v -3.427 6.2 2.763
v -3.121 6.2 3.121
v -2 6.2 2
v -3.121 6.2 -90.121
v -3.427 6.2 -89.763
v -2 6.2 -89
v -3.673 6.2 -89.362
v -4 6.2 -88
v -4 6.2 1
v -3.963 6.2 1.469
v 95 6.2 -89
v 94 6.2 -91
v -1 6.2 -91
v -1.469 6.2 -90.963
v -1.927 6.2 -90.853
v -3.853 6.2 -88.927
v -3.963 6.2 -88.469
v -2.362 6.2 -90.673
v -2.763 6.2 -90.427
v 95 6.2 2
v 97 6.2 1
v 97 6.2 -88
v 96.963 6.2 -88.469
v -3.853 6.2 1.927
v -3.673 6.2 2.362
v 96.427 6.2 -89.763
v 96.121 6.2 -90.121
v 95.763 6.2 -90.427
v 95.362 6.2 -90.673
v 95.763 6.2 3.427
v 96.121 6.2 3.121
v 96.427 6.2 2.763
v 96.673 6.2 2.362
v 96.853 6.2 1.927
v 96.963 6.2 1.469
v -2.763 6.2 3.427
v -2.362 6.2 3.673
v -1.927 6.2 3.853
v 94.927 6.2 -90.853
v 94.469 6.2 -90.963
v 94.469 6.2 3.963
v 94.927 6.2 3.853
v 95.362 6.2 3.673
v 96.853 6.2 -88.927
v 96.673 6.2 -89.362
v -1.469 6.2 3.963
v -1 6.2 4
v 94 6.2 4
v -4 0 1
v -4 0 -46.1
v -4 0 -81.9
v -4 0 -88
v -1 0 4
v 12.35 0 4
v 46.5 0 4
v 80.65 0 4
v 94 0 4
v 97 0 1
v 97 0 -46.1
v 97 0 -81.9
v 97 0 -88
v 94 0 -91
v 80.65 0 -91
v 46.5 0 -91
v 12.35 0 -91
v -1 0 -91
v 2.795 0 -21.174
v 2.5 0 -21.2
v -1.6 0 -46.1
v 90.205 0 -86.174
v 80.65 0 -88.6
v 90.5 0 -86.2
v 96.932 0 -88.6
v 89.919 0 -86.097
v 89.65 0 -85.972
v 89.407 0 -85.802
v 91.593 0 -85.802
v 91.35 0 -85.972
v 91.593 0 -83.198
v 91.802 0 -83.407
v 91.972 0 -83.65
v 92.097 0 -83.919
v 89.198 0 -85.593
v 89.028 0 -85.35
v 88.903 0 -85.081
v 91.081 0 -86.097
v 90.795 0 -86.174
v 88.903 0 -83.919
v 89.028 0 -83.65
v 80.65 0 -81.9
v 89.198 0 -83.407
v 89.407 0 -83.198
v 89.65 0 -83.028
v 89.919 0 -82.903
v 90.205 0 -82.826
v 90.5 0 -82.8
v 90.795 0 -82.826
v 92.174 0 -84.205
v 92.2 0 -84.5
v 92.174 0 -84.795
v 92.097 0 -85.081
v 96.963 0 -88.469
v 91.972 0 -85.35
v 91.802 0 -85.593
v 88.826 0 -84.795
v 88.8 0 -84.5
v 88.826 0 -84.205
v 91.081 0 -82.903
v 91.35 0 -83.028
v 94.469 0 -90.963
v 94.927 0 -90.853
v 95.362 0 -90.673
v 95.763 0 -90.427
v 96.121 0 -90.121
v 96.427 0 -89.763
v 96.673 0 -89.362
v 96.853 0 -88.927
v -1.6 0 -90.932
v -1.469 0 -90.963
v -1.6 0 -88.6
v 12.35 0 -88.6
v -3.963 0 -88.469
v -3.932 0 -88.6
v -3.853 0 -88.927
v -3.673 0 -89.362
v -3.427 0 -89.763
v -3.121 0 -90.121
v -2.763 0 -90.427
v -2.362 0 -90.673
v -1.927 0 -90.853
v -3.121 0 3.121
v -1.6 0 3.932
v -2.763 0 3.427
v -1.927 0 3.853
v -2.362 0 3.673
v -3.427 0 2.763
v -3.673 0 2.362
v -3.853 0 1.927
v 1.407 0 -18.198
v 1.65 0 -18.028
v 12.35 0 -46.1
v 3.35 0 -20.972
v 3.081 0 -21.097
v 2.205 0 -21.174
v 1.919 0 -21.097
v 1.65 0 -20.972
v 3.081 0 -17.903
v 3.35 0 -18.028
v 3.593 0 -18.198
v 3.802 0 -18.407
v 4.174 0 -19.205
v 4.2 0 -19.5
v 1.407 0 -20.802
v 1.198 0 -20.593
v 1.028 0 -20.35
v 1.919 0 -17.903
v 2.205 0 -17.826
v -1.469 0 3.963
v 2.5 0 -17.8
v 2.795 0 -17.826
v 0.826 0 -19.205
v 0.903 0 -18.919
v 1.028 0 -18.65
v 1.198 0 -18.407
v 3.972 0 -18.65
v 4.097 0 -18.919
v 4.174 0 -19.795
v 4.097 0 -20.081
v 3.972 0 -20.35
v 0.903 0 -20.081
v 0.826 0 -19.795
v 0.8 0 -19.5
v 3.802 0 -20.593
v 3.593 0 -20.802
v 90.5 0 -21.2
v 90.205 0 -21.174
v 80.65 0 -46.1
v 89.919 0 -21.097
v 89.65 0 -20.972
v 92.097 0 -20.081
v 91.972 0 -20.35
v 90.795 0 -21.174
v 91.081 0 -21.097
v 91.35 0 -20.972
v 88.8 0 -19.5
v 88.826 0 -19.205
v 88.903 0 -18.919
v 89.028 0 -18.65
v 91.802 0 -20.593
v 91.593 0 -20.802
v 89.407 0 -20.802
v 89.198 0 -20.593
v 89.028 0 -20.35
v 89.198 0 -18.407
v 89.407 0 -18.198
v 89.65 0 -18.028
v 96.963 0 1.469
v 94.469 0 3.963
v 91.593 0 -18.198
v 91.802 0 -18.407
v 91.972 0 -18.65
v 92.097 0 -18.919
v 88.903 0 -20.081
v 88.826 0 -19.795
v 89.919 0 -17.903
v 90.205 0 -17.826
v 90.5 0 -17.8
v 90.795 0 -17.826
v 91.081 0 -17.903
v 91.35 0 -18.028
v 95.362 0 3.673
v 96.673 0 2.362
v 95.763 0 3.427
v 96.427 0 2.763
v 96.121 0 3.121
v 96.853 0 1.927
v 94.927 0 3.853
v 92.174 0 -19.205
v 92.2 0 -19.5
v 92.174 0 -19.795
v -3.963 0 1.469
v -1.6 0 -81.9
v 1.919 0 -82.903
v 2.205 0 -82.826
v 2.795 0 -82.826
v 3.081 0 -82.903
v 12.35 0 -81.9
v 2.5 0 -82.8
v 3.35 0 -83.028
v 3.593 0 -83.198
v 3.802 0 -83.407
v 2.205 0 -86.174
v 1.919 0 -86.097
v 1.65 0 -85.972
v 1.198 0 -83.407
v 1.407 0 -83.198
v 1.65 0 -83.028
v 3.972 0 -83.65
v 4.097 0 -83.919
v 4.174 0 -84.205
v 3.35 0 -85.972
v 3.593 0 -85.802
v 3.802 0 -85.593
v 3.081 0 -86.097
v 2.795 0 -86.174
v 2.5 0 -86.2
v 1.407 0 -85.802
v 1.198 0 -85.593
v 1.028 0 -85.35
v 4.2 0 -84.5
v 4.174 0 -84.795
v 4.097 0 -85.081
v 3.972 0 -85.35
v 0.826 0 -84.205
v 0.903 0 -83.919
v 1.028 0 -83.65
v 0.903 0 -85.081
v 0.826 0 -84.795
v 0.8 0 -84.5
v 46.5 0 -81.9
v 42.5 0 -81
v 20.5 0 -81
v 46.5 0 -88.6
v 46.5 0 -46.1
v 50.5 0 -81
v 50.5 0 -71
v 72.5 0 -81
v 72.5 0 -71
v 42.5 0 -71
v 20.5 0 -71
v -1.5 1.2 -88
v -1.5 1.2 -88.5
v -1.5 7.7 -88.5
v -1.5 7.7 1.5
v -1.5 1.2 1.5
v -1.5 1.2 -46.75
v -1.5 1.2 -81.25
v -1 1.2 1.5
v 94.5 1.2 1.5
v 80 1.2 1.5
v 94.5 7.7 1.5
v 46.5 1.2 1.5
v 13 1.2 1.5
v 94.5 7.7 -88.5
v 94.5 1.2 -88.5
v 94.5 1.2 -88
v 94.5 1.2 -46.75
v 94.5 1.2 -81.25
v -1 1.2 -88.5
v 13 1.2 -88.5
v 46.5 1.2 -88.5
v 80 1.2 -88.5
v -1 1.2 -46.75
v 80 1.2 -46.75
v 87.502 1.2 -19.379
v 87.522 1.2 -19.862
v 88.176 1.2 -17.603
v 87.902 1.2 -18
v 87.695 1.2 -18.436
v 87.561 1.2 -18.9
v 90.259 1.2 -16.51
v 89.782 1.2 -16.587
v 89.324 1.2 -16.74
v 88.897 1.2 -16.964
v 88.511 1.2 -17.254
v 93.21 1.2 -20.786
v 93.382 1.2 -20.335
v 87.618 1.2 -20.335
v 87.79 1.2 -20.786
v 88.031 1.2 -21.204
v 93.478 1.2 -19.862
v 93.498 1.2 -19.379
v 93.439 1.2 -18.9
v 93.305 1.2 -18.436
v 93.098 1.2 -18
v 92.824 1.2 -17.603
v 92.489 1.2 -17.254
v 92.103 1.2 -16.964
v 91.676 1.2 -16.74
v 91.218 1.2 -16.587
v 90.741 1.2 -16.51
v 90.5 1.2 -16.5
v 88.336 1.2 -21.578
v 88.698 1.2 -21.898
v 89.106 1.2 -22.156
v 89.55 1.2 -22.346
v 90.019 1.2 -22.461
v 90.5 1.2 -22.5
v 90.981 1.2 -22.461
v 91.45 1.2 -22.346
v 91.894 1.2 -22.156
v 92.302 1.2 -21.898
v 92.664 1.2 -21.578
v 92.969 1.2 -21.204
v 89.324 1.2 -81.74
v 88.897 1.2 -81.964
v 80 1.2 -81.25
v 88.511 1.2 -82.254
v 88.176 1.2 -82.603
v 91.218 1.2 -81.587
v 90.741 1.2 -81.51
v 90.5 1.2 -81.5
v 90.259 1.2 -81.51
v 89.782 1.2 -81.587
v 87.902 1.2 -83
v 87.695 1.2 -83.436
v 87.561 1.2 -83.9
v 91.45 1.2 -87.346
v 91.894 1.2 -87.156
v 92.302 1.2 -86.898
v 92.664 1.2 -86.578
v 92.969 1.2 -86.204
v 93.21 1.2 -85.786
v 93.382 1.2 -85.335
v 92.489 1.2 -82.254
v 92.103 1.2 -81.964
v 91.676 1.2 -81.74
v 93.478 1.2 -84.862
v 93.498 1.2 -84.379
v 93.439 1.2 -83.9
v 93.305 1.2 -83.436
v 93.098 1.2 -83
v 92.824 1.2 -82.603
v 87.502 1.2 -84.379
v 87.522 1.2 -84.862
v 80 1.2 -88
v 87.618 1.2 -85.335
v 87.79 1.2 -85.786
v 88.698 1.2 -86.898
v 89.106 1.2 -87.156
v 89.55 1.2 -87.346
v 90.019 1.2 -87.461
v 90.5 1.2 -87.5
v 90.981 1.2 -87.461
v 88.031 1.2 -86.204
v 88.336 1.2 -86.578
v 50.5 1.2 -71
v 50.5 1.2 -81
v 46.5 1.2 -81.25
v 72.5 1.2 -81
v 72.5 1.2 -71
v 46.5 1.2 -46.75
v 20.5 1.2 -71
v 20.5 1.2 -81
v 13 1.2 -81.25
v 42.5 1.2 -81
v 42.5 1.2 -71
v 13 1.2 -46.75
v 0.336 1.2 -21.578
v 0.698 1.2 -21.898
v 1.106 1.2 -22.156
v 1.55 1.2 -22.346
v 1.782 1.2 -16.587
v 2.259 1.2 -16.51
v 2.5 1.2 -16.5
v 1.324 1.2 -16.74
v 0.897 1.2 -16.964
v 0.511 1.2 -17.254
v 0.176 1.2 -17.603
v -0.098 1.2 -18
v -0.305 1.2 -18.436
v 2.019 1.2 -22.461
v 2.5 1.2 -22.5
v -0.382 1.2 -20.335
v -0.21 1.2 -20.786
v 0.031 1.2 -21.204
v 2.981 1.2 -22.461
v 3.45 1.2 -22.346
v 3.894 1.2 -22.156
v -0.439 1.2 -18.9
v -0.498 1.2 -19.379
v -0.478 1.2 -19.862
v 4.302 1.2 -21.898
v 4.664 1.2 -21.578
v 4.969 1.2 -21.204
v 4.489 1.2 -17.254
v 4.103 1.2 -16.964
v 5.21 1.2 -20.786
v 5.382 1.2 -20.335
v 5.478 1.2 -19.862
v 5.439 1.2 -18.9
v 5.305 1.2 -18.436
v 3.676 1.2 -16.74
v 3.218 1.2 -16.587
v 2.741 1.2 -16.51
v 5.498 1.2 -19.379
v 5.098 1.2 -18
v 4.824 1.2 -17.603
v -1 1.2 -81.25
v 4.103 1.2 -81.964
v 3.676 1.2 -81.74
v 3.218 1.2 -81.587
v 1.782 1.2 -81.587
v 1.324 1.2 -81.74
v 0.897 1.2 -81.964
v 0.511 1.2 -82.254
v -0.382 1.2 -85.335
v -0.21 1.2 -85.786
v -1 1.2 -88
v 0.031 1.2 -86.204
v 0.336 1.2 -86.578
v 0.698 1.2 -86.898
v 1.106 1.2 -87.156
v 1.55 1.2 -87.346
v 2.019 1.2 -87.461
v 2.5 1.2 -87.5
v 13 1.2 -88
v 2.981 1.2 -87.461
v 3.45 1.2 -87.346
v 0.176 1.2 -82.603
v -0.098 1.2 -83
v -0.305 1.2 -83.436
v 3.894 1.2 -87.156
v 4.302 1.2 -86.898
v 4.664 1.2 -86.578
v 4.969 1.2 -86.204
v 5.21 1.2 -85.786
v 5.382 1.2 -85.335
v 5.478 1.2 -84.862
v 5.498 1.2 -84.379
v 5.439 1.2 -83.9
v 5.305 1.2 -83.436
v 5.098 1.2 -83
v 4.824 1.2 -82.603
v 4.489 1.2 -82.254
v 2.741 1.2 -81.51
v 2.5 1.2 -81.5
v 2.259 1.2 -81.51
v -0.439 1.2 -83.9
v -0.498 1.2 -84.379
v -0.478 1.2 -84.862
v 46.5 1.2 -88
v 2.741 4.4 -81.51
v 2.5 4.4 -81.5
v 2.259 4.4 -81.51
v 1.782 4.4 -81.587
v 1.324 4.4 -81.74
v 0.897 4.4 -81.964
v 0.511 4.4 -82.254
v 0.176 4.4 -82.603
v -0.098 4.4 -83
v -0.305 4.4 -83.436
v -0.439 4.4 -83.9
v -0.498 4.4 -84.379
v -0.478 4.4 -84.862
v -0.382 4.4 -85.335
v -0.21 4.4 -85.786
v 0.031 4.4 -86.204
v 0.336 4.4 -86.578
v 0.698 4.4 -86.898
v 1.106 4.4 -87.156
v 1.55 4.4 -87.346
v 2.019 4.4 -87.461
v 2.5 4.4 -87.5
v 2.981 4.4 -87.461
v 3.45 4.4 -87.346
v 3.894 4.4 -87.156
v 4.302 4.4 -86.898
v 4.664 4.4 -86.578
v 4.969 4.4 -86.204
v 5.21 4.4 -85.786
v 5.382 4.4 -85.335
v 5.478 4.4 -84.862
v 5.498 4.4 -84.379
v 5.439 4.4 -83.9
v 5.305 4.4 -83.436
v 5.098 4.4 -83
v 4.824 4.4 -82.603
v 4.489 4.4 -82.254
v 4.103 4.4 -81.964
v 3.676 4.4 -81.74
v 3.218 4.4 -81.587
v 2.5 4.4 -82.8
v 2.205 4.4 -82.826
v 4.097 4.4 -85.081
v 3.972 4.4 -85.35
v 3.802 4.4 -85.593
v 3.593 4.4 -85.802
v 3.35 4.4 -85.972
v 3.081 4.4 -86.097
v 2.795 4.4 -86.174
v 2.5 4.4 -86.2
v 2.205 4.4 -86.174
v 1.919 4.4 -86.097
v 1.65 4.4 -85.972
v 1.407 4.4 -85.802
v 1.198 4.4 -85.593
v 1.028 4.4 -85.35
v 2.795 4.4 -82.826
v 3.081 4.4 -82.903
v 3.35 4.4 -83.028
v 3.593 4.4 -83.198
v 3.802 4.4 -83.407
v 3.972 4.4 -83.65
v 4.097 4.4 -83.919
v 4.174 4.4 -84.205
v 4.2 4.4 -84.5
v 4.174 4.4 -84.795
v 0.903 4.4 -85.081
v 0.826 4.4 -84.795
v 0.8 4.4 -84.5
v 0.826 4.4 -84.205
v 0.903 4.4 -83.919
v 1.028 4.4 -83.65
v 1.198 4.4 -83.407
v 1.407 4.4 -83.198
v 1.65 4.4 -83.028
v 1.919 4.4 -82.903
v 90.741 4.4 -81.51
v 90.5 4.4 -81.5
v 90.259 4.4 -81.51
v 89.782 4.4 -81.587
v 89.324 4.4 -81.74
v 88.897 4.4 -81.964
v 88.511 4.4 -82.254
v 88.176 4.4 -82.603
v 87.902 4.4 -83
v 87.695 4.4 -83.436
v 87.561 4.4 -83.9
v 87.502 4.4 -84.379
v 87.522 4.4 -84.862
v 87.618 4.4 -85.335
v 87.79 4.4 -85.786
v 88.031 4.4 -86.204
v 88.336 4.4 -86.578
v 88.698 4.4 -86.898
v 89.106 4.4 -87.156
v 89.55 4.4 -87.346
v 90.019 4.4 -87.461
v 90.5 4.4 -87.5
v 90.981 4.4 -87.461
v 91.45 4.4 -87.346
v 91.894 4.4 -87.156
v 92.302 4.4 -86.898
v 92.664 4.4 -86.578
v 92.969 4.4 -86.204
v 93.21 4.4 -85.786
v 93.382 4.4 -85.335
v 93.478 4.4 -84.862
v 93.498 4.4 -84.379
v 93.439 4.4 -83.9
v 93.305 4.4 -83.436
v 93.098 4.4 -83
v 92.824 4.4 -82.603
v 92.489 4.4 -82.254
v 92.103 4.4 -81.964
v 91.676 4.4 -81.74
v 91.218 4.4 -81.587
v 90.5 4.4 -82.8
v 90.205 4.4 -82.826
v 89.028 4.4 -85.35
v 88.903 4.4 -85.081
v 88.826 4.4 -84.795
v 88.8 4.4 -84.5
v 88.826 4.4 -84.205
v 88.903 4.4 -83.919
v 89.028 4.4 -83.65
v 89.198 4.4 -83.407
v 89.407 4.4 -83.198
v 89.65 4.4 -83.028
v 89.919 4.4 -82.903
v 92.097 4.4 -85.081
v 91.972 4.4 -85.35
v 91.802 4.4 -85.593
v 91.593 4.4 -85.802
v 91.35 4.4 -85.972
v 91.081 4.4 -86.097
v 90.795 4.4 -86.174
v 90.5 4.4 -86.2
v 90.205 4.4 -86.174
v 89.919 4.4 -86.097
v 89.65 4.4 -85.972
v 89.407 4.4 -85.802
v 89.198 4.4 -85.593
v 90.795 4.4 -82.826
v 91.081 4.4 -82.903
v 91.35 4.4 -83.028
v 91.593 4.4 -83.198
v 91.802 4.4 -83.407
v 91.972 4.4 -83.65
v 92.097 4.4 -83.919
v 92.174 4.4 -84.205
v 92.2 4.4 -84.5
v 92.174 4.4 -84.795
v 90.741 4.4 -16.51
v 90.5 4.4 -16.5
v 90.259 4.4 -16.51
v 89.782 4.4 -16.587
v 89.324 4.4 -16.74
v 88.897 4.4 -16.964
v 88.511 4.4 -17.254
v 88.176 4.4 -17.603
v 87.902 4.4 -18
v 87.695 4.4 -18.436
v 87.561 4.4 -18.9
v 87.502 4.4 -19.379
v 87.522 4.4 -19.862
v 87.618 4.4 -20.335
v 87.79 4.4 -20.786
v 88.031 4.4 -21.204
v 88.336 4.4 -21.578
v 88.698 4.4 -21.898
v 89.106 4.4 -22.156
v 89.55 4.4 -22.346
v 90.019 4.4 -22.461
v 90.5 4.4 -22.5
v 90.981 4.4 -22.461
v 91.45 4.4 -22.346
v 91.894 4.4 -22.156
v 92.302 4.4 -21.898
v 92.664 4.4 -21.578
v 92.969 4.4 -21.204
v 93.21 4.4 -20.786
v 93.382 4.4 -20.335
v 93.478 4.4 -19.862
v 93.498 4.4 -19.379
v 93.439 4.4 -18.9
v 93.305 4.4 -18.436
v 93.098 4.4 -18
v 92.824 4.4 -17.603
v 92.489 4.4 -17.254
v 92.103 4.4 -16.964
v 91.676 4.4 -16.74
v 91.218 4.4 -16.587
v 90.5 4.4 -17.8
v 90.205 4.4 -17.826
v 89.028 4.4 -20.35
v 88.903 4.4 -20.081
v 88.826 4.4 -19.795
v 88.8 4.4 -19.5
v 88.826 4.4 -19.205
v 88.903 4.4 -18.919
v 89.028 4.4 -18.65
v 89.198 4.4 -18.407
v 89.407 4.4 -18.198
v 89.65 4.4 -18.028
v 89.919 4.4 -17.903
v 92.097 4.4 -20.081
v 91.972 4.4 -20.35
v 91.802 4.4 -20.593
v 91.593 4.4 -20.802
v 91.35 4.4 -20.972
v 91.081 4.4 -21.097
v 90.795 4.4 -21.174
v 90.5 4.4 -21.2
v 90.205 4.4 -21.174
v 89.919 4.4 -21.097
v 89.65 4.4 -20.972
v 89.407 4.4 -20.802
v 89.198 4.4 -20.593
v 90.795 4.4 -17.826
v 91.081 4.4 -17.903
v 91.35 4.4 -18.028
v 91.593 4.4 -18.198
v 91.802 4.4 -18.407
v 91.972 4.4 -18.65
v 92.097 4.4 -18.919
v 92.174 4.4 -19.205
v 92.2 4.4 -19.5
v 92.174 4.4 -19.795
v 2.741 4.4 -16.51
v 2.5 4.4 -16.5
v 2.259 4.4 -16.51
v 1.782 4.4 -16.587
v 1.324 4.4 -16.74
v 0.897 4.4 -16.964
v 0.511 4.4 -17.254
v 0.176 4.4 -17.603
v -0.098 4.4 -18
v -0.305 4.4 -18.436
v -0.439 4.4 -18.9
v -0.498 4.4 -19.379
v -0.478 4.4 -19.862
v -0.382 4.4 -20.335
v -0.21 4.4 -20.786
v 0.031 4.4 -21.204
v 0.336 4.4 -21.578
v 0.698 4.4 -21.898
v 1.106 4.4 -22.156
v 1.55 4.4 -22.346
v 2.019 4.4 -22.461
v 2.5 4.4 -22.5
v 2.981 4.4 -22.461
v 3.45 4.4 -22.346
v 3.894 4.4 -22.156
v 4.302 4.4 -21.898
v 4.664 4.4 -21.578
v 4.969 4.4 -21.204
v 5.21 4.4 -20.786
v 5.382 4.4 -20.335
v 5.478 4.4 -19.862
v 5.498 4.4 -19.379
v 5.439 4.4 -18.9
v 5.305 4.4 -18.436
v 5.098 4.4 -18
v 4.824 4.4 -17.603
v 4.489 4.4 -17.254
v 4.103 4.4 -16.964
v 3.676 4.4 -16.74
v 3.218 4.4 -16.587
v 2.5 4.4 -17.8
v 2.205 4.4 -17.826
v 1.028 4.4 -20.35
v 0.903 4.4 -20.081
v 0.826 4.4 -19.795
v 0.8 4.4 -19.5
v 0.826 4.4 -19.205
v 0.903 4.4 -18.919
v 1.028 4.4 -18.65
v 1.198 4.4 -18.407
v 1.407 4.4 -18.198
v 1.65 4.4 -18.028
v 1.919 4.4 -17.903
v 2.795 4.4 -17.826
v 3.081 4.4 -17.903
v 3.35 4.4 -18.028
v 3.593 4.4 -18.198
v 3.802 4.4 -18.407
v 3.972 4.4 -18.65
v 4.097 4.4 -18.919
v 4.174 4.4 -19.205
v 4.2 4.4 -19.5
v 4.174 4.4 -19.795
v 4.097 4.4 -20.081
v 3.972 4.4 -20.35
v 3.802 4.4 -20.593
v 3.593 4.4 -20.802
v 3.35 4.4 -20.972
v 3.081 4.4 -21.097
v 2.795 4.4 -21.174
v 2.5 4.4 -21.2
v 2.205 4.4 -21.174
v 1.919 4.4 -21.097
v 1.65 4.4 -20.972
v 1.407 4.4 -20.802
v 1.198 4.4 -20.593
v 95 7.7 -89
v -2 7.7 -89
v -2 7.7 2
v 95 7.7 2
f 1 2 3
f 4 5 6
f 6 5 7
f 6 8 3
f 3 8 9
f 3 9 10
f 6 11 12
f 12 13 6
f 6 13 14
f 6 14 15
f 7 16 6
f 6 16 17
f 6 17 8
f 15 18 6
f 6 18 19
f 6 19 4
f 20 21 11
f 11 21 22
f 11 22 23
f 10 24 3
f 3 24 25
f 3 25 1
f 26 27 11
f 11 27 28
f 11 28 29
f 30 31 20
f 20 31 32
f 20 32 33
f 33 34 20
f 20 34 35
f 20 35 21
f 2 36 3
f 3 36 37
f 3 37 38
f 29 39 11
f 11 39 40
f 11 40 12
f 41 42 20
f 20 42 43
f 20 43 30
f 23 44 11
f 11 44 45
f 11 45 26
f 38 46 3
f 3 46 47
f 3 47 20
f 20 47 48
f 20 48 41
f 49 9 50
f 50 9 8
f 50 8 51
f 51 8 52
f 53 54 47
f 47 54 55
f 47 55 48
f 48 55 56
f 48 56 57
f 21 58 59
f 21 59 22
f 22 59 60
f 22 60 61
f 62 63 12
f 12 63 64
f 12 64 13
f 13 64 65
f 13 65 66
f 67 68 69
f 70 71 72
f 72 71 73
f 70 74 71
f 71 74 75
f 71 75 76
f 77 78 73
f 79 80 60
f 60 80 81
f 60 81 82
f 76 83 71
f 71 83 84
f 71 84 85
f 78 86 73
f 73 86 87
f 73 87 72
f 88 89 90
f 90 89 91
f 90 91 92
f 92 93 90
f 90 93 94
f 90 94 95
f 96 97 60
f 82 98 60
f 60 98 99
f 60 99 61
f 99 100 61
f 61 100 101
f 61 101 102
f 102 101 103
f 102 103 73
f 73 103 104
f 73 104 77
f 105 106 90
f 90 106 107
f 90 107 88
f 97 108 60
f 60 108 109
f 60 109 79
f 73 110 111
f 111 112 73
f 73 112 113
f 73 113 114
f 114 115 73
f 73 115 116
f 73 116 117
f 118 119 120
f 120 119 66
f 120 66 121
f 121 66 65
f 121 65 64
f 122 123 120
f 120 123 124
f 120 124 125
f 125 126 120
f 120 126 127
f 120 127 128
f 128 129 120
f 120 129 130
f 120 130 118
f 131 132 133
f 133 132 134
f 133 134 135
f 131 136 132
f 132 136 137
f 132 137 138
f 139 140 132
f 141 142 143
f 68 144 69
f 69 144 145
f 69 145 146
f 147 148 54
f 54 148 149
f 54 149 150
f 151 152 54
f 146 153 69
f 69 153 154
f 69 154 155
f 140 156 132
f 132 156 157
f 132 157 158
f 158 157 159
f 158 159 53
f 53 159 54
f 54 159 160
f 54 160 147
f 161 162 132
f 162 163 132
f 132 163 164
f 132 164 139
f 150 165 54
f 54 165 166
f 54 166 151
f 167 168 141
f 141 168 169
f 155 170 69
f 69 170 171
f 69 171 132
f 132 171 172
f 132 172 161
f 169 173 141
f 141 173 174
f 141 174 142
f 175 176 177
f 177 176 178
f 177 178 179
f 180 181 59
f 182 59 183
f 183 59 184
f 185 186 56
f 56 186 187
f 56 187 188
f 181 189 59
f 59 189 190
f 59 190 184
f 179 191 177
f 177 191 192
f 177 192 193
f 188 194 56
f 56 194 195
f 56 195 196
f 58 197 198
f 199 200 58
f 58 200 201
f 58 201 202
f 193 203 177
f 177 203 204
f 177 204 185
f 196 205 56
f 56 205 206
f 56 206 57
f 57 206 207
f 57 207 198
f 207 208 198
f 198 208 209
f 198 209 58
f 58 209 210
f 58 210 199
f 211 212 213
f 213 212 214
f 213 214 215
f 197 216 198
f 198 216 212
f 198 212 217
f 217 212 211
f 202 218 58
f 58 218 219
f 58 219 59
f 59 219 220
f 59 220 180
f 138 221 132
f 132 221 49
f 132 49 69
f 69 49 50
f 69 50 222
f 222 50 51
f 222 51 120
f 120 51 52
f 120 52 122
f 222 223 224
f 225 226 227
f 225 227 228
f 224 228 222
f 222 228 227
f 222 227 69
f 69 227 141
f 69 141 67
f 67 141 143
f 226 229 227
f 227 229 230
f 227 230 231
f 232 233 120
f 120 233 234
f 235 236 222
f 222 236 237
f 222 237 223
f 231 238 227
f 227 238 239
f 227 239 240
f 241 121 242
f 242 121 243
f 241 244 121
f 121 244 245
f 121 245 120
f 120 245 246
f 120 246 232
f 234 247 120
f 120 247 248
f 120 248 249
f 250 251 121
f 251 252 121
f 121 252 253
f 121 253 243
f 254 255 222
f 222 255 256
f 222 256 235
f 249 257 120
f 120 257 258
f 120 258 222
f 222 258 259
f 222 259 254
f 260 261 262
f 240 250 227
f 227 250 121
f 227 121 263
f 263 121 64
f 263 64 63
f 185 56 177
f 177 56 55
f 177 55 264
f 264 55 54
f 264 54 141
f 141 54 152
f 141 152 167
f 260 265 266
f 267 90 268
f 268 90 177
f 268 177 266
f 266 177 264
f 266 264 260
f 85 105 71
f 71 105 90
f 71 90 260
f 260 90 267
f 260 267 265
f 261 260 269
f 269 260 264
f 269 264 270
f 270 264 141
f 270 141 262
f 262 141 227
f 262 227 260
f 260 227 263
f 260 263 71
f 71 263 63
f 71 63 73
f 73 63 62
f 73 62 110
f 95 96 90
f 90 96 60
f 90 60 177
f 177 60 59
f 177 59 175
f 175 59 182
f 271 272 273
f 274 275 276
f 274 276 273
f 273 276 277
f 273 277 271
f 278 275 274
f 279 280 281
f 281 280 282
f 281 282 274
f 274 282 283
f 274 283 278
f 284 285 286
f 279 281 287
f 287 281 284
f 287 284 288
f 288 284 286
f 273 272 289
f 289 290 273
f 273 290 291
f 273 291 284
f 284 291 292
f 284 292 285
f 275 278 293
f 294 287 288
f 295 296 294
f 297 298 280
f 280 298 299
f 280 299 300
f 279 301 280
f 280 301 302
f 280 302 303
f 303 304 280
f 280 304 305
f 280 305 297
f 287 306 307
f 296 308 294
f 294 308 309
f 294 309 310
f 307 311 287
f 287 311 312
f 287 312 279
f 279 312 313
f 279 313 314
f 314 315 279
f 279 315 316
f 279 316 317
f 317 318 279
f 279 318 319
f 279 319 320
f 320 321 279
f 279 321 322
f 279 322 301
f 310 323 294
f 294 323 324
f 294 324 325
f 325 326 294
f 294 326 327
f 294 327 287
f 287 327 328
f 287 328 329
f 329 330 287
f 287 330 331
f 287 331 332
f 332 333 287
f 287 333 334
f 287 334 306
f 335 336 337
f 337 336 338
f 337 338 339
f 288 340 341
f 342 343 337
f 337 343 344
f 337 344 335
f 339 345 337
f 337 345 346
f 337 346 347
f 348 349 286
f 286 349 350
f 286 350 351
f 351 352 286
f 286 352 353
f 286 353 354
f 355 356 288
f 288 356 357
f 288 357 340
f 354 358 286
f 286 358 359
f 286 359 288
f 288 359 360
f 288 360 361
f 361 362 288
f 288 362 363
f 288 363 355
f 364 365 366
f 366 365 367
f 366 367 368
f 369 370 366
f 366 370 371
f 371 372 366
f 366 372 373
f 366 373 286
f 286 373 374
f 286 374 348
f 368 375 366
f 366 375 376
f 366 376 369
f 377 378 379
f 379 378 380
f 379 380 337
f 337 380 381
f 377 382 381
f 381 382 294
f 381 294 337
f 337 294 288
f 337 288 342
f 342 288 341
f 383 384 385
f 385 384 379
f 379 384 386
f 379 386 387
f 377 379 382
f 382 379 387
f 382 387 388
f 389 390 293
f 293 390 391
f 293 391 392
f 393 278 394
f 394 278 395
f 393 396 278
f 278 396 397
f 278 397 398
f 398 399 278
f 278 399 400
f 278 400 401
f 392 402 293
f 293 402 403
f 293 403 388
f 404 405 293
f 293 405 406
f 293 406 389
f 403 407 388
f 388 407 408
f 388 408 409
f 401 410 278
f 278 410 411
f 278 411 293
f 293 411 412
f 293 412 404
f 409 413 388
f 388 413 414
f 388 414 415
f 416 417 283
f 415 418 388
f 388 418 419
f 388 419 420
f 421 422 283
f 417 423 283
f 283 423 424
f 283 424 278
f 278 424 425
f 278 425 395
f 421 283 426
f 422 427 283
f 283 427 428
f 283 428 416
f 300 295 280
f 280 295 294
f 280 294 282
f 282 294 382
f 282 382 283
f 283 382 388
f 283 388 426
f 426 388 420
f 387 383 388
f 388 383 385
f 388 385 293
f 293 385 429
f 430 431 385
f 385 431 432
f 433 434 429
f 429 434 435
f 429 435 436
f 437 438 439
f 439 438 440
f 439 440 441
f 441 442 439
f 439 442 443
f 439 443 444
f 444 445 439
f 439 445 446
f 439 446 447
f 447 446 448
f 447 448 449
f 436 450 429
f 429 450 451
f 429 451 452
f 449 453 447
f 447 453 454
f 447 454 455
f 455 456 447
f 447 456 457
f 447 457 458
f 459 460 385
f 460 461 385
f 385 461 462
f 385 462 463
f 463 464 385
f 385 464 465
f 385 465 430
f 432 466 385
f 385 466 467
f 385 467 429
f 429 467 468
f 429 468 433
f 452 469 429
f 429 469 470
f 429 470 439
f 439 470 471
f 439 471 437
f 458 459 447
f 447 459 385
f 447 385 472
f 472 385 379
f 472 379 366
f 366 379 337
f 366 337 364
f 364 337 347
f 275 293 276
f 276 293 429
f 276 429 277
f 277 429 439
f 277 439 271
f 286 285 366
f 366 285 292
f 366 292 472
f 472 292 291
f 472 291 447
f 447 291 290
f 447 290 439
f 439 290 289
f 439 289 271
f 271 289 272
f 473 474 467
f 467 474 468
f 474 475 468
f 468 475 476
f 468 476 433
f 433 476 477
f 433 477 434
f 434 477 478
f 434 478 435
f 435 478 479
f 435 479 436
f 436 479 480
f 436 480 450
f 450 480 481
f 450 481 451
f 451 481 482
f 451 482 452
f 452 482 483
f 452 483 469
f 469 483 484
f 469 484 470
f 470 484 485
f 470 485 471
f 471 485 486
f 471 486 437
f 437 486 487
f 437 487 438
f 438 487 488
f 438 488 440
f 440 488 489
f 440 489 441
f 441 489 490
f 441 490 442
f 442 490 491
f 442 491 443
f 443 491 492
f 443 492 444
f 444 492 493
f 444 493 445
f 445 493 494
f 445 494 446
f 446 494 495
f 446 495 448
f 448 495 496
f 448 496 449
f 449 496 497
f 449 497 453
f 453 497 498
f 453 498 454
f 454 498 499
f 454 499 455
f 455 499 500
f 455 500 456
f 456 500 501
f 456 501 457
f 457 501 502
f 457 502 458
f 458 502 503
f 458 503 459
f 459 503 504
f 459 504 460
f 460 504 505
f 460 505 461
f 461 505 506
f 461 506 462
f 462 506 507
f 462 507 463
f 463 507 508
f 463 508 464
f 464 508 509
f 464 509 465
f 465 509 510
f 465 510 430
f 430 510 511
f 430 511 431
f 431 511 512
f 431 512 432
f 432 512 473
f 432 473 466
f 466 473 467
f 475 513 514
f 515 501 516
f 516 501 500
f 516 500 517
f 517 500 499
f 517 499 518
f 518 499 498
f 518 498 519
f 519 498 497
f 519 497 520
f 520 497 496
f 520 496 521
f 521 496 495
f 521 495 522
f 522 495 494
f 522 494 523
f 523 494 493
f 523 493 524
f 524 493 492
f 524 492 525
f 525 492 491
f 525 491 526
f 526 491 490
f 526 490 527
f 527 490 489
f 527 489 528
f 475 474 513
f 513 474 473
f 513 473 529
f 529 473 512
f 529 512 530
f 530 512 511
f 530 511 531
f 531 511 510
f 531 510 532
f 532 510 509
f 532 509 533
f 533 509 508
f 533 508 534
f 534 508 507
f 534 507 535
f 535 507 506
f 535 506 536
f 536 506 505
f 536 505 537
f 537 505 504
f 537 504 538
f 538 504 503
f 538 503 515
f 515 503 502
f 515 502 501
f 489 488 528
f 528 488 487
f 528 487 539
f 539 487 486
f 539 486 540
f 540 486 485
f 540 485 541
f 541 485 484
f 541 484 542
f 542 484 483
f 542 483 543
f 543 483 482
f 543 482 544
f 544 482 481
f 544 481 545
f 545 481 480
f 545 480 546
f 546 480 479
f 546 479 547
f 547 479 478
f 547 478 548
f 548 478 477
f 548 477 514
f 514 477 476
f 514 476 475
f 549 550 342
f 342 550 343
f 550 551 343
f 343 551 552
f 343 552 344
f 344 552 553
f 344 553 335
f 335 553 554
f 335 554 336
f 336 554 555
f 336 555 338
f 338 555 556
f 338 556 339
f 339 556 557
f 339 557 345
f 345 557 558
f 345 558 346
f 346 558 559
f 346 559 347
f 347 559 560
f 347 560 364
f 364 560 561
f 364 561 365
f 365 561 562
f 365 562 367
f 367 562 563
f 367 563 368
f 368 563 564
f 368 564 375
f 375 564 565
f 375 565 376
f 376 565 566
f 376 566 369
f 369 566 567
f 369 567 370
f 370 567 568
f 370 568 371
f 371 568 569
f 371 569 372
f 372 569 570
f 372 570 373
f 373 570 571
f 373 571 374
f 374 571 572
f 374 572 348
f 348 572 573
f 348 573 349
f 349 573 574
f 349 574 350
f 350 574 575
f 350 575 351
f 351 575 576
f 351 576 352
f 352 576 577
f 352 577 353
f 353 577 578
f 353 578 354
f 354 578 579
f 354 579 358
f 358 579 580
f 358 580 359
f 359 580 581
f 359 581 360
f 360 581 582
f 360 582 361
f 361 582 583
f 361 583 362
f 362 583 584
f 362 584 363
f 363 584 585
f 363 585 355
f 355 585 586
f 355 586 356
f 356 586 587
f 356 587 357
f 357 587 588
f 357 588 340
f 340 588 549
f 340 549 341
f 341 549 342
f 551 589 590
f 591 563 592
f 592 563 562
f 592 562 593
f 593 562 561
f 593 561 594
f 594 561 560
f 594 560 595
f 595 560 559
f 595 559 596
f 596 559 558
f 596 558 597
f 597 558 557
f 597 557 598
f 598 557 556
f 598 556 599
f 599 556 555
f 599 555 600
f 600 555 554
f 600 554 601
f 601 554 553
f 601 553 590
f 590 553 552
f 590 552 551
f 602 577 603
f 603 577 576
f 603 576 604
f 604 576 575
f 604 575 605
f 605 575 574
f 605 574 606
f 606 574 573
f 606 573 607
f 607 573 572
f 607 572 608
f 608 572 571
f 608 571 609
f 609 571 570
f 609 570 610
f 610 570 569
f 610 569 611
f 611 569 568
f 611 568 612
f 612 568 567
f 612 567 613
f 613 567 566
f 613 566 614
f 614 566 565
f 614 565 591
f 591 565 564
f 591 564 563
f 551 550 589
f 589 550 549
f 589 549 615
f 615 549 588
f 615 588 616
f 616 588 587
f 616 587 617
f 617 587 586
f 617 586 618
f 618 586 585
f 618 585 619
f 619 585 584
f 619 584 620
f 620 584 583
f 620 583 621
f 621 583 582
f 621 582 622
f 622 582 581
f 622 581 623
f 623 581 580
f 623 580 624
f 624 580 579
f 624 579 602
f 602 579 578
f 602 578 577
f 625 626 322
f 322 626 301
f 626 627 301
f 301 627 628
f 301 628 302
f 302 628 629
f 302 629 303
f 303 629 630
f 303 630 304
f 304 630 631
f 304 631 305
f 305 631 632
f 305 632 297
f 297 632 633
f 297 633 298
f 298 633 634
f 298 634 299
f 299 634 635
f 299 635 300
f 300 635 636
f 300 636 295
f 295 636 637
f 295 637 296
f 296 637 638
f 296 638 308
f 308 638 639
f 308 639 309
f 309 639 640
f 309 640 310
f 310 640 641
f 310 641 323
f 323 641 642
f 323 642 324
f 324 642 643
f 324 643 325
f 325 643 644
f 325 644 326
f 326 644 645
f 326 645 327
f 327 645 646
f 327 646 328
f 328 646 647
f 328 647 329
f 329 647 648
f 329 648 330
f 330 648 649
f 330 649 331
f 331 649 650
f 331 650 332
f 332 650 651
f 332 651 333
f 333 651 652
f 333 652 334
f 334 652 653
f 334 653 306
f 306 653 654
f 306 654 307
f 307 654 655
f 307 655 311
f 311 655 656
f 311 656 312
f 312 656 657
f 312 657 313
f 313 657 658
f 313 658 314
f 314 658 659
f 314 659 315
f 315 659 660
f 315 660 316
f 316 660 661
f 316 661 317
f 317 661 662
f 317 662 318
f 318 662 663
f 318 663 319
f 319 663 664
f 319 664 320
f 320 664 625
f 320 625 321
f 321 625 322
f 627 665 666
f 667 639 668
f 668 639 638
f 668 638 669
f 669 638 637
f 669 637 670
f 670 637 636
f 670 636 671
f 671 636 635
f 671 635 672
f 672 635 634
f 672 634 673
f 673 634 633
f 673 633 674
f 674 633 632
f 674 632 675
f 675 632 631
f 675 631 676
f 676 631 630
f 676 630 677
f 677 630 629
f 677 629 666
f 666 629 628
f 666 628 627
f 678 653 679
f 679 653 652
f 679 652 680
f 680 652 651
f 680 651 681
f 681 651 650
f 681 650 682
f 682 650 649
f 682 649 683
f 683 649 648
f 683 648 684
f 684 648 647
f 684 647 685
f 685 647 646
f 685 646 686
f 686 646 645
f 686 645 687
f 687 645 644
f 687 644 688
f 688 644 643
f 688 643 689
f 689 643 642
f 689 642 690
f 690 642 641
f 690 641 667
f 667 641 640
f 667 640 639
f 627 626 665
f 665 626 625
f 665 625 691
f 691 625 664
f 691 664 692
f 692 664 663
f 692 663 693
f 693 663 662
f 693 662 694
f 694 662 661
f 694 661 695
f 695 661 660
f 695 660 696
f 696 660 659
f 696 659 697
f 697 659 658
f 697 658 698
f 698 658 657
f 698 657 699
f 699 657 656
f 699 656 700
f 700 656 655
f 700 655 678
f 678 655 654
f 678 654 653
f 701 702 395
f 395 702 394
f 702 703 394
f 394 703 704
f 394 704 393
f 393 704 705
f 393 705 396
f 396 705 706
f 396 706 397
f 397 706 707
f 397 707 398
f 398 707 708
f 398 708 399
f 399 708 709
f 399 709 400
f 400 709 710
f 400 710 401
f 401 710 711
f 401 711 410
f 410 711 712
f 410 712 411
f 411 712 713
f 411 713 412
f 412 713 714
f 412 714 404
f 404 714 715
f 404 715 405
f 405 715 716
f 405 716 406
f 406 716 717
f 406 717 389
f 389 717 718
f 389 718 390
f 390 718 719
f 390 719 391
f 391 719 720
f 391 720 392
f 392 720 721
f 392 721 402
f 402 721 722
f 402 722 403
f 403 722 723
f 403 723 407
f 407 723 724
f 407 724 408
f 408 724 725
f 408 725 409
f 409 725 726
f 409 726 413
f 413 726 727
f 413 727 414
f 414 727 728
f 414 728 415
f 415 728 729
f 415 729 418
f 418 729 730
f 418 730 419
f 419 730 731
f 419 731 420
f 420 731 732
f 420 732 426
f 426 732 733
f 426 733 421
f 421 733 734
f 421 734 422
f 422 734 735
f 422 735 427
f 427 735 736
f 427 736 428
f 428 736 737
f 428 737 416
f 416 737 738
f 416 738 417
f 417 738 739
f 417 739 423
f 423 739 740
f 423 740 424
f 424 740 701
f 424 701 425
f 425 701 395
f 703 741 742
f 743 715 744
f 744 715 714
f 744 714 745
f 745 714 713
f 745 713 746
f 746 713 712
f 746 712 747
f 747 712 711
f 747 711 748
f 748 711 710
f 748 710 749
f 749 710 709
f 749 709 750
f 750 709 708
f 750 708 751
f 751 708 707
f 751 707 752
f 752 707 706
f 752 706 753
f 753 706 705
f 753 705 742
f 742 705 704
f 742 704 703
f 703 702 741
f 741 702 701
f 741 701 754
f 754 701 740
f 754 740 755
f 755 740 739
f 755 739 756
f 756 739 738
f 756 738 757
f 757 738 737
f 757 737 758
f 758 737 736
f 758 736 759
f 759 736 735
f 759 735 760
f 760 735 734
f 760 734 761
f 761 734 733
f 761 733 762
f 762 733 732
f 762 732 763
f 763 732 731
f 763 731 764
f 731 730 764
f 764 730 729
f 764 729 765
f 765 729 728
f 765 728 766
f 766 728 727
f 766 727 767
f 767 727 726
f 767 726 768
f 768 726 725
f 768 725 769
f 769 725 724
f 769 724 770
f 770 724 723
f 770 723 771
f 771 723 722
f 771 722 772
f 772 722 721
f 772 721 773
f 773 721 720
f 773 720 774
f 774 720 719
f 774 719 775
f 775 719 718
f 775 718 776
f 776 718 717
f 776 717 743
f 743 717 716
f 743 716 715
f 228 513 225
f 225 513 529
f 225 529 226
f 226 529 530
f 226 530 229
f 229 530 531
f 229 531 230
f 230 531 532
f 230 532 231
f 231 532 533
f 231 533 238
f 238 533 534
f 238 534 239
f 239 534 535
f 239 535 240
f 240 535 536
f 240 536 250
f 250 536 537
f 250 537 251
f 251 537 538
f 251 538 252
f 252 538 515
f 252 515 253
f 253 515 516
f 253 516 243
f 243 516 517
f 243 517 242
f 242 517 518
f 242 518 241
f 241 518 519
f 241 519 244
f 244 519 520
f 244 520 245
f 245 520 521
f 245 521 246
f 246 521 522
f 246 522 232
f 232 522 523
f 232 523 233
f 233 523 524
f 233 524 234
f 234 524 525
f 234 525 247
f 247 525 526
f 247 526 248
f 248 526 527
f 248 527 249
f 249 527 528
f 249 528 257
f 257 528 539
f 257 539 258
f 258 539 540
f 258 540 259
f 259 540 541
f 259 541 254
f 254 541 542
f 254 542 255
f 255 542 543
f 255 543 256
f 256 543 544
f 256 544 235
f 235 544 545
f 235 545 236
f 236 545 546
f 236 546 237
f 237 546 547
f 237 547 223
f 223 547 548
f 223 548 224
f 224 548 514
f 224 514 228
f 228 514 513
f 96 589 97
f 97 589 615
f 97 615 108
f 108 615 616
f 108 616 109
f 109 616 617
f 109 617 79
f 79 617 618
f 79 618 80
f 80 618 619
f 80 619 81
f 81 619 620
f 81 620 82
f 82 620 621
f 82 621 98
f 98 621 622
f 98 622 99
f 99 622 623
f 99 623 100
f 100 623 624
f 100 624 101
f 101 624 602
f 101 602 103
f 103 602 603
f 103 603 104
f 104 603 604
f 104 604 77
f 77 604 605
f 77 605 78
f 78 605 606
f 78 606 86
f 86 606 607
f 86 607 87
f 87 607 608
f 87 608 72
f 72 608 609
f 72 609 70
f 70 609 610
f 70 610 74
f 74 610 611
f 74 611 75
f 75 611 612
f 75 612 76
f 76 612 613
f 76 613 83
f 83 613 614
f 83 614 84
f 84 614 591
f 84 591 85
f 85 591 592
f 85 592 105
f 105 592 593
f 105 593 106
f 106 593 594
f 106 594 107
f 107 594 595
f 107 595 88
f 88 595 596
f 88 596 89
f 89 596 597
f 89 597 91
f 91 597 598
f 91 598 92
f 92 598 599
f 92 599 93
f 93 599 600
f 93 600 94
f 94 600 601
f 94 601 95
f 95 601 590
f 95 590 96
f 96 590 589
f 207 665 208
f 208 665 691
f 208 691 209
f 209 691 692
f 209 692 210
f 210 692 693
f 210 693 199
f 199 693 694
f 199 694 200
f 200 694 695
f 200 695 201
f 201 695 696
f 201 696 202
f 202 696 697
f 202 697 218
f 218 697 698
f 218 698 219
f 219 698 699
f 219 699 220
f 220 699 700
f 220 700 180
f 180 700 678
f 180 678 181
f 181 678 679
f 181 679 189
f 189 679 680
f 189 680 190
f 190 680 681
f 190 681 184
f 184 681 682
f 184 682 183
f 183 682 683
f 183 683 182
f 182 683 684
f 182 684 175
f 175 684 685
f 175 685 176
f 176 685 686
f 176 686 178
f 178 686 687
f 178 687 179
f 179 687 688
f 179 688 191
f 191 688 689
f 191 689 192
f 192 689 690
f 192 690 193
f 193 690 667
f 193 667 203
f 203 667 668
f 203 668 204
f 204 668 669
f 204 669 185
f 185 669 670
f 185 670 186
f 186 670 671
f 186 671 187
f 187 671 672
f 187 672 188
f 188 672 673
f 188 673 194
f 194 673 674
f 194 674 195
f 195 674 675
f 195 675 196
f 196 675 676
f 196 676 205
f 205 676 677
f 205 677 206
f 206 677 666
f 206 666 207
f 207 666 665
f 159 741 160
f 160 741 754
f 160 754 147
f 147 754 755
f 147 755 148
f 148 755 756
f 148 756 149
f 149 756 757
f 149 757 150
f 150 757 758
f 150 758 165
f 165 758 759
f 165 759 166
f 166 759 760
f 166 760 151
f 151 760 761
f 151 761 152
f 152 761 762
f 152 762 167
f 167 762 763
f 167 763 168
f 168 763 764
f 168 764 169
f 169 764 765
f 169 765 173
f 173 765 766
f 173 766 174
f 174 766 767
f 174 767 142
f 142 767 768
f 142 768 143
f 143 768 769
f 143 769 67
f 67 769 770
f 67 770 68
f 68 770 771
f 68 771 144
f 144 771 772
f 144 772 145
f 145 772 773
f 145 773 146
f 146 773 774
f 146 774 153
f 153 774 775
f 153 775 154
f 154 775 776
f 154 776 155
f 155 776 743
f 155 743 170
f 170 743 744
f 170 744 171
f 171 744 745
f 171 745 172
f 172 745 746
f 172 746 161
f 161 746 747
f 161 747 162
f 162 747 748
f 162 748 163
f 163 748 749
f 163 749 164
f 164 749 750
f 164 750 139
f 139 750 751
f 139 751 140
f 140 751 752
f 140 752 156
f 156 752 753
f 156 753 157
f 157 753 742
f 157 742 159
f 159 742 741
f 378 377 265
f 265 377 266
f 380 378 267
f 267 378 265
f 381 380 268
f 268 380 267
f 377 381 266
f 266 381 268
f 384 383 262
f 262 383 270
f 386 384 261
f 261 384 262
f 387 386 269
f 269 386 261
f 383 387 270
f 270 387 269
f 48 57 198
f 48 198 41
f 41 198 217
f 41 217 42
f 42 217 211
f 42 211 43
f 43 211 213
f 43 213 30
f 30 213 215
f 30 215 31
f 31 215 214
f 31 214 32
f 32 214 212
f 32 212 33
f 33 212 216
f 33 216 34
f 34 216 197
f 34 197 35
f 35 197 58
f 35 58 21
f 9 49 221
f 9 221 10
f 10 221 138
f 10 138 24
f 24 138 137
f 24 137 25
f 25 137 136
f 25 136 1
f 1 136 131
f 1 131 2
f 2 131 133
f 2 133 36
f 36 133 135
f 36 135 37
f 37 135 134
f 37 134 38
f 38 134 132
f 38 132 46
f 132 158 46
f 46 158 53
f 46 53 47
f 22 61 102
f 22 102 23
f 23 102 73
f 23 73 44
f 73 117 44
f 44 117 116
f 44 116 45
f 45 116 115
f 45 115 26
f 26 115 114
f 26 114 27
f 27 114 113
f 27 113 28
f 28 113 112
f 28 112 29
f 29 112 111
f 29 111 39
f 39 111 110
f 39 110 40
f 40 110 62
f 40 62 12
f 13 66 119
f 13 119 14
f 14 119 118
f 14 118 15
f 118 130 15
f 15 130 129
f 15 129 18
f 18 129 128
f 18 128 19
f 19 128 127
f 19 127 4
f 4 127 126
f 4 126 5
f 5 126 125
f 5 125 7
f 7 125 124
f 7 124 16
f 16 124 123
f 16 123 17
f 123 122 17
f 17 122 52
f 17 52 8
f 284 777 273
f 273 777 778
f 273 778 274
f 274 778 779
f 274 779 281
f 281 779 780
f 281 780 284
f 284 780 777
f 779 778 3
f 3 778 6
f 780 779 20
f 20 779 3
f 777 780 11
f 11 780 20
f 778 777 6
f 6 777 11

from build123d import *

# Parameters (mm, degrees)
SKETCH1_W           = 101
SKETCH1_H           = 95
BOSS_EXTRUDE1_DEPTH = 1.2
SKETCH3_W           = 101
SKETCH3_H           = 95
SKETCH3_W_2         = 96
SKETCH3_H_2         = 90
BOSS_EXTRUDE2_DEPTH = 5
SKETCH5_R           = 3
BOSS_EXTRUDE3_DEPTH = 3.2
CUT_EXTRUDE1_REACH  = 6.4
SKETCH6_R           = 1.7
CUT_EXTRUDE2_REACH  = 3.2
SKETCH7_W           = 22
SKETCH7_H           = 10
FILLET1_R           = 3
SKETCH8_W           = 97
SKETCH8_H           = 91
SKETCH8_W_2         = 96
SKETCH8_H_2         = 90
BOSS_EXTRUDE4_DEPTH = 1.5


with BuildPart() as part:
    # Sketch1 → Boss-Extrude1 (new body)
    with BuildSketch(Plane(origin=(0, 0, 0), x_dir=(1, 0, 0), z_dir=(0, 1, 0))):
        with Locations((46.5, 43.5)):
            Rectangle(SKETCH1_W, SKETCH1_H)
    extrude(amount=BOSS_EXTRUDE1_DEPTH)

    # Sketch3 → Boss-Extrude2 (add)
    with BuildSketch(Plane(origin=(0, 1.2, 0), x_dir=(1, 0, 0), z_dir=(0, 1, 0))):
        with Locations((46.5, 43.5)):
            Rectangle(SKETCH3_W, SKETCH3_H)
        with Locations((46.5, 43.5)):
            Rectangle(SKETCH3_W_2, SKETCH3_H_2, mode=Mode.SUBTRACT)
    extrude(amount=BOSS_EXTRUDE2_DEPTH)

    # Sketch5 → Boss-Extrude3 (add)
    with BuildSketch(Plane(origin=(0, 1.2, 0), x_dir=(1, 0, 0), z_dir=(0, 1, 0))):
        with Locations((2.5, 84.5)):
            Circle(SKETCH5_R)
        with Locations((90.5, 84.5)):
            Circle(SKETCH5_R)
        with Locations((90.5, 19.5)):
            Circle(SKETCH5_R)
        with Locations((2.5, 19.5)):
            Circle(SKETCH5_R)
    extrude(amount=BOSS_EXTRUDE3_DEPTH)

    # Sketch6 → Cut-Extrude1 (cut, up to next)
    with BuildSketch(Plane(origin=(0, 4.4, 0), x_dir=(1, 0, 0), z_dir=(0, 1, 0)), mode=Mode.PRIVATE) as cut_extrude1_sk1:
        with Locations((2.5, 84.5)):
            Circle(SKETCH6_R)
    cut_extrude1_tool1 = extrude(cut_extrude1_sk1.sketch, amount=-CUT_EXTRUDE1_REACH, mode=Mode.PRIVATE) & part.part
    add(cut_extrude1_tool1.solids().sort_by_distance((2.5, 4.4, -84.5))[0], mode=Mode.SUBTRACT)
    # Sketch6 → Cut-Extrude1 (cut, up to next)
    with BuildSketch(Plane(origin=(0, 4.4, 0), x_dir=(1, 0, 0), z_dir=(0, 1, 0)), mode=Mode.PRIVATE) as cut_extrude1_sk2:
        with Locations((90.5, 84.5)):
            Circle(SKETCH6_R)
    cut_extrude1_tool2 = extrude(cut_extrude1_sk2.sketch, amount=-CUT_EXTRUDE1_REACH, mode=Mode.PRIVATE) & part.part
    add(cut_extrude1_tool2.solids().sort_by_distance((90.5, 4.4, -84.5))[0], mode=Mode.SUBTRACT)
    # Sketch6 → Cut-Extrude1 (cut, up to next)
    with BuildSketch(Plane(origin=(0, 4.4, 0), x_dir=(1, 0, 0), z_dir=(0, 1, 0)), mode=Mode.PRIVATE) as cut_extrude1_sk3:
        with Locations((90.5, 19.5)):
            Circle(SKETCH6_R)
    cut_extrude1_tool3 = extrude(cut_extrude1_sk3.sketch, amount=-CUT_EXTRUDE1_REACH, mode=Mode.PRIVATE) & part.part
    add(cut_extrude1_tool3.solids().sort_by_distance((90.5, 4.4, -19.5))[0], mode=Mode.SUBTRACT)
    # Sketch6 → Cut-Extrude1 (cut, up to next)
    with BuildSketch(Plane(origin=(0, 4.4, 0), x_dir=(1, 0, 0), z_dir=(0, 1, 0)), mode=Mode.PRIVATE) as cut_extrude1_sk4:
        with Locations((2.5, 19.5)):
            Circle(SKETCH6_R)
    cut_extrude1_tool4 = extrude(cut_extrude1_sk4.sketch, amount=-CUT_EXTRUDE1_REACH, mode=Mode.PRIVATE) & part.part
    add(cut_extrude1_tool4.solids().sort_by_distance((2.5, 4.4, -19.5))[0], mode=Mode.SUBTRACT)

    # Sketch7 → Cut-Extrude2 (cut, up to next)
    with BuildSketch(Plane(origin=(0, 1.2, 0), x_dir=(1, 0, 0), z_dir=(0, 1, 0)), mode=Mode.PRIVATE) as cut_extrude2_sk1:
        with Locations((61.5, 76)):
            Rectangle(SKETCH7_W, SKETCH7_H)
    cut_extrude2_tool1 = extrude(cut_extrude2_sk1.sketch, amount=-CUT_EXTRUDE2_REACH, mode=Mode.PRIVATE) & part.part
    add(cut_extrude2_tool1.solids().sort_by_distance((61.5, 1.2, -76))[0], mode=Mode.SUBTRACT)
    # Sketch7 → Cut-Extrude2 (cut, up to next)
    with BuildSketch(Plane(origin=(0, 1.2, 0), x_dir=(1, 0, 0), z_dir=(0, 1, 0)), mode=Mode.PRIVATE) as cut_extrude2_sk2:
        with Locations((31.5, 76)):
            Rectangle(SKETCH7_W, SKETCH7_H)
    cut_extrude2_tool2 = extrude(cut_extrude2_sk2.sketch, amount=-CUT_EXTRUDE2_REACH, mode=Mode.PRIVATE) & part.part
    add(cut_extrude2_tool2.solids().sort_by_distance((31.5, 1.2, -76))[0], mode=Mode.SUBTRACT)

    # Fillet1
    fillet1_edges = [part.edges().sort_by_distance(p)[0] for p in [
        (-4, 3.1, -91),
        (97, 3.1, -91),
        (97, 3.1, 4),
        (-4, 3.1, 4),
    ]]
    fillet(fillet1_edges, radius=FILLET1_R)

    # Sketch8 → Boss-Extrude4 (add)
    with BuildSketch(Plane(origin=(0, 6.2, 0), x_dir=(1, 0, 0), z_dir=(0, 1, 0))):
        with Locations((46.5, 43.5)):
            Rectangle(SKETCH8_W, SKETCH8_H)
        with Locations((46.5, 43.5)):
            Rectangle(SKETCH8_W_2, SKETCH8_H_2, mode=Mode.SUBTRACT)
    extrude(amount=BOSS_EXTRUDE4_DEPTH)


solid = part.part
